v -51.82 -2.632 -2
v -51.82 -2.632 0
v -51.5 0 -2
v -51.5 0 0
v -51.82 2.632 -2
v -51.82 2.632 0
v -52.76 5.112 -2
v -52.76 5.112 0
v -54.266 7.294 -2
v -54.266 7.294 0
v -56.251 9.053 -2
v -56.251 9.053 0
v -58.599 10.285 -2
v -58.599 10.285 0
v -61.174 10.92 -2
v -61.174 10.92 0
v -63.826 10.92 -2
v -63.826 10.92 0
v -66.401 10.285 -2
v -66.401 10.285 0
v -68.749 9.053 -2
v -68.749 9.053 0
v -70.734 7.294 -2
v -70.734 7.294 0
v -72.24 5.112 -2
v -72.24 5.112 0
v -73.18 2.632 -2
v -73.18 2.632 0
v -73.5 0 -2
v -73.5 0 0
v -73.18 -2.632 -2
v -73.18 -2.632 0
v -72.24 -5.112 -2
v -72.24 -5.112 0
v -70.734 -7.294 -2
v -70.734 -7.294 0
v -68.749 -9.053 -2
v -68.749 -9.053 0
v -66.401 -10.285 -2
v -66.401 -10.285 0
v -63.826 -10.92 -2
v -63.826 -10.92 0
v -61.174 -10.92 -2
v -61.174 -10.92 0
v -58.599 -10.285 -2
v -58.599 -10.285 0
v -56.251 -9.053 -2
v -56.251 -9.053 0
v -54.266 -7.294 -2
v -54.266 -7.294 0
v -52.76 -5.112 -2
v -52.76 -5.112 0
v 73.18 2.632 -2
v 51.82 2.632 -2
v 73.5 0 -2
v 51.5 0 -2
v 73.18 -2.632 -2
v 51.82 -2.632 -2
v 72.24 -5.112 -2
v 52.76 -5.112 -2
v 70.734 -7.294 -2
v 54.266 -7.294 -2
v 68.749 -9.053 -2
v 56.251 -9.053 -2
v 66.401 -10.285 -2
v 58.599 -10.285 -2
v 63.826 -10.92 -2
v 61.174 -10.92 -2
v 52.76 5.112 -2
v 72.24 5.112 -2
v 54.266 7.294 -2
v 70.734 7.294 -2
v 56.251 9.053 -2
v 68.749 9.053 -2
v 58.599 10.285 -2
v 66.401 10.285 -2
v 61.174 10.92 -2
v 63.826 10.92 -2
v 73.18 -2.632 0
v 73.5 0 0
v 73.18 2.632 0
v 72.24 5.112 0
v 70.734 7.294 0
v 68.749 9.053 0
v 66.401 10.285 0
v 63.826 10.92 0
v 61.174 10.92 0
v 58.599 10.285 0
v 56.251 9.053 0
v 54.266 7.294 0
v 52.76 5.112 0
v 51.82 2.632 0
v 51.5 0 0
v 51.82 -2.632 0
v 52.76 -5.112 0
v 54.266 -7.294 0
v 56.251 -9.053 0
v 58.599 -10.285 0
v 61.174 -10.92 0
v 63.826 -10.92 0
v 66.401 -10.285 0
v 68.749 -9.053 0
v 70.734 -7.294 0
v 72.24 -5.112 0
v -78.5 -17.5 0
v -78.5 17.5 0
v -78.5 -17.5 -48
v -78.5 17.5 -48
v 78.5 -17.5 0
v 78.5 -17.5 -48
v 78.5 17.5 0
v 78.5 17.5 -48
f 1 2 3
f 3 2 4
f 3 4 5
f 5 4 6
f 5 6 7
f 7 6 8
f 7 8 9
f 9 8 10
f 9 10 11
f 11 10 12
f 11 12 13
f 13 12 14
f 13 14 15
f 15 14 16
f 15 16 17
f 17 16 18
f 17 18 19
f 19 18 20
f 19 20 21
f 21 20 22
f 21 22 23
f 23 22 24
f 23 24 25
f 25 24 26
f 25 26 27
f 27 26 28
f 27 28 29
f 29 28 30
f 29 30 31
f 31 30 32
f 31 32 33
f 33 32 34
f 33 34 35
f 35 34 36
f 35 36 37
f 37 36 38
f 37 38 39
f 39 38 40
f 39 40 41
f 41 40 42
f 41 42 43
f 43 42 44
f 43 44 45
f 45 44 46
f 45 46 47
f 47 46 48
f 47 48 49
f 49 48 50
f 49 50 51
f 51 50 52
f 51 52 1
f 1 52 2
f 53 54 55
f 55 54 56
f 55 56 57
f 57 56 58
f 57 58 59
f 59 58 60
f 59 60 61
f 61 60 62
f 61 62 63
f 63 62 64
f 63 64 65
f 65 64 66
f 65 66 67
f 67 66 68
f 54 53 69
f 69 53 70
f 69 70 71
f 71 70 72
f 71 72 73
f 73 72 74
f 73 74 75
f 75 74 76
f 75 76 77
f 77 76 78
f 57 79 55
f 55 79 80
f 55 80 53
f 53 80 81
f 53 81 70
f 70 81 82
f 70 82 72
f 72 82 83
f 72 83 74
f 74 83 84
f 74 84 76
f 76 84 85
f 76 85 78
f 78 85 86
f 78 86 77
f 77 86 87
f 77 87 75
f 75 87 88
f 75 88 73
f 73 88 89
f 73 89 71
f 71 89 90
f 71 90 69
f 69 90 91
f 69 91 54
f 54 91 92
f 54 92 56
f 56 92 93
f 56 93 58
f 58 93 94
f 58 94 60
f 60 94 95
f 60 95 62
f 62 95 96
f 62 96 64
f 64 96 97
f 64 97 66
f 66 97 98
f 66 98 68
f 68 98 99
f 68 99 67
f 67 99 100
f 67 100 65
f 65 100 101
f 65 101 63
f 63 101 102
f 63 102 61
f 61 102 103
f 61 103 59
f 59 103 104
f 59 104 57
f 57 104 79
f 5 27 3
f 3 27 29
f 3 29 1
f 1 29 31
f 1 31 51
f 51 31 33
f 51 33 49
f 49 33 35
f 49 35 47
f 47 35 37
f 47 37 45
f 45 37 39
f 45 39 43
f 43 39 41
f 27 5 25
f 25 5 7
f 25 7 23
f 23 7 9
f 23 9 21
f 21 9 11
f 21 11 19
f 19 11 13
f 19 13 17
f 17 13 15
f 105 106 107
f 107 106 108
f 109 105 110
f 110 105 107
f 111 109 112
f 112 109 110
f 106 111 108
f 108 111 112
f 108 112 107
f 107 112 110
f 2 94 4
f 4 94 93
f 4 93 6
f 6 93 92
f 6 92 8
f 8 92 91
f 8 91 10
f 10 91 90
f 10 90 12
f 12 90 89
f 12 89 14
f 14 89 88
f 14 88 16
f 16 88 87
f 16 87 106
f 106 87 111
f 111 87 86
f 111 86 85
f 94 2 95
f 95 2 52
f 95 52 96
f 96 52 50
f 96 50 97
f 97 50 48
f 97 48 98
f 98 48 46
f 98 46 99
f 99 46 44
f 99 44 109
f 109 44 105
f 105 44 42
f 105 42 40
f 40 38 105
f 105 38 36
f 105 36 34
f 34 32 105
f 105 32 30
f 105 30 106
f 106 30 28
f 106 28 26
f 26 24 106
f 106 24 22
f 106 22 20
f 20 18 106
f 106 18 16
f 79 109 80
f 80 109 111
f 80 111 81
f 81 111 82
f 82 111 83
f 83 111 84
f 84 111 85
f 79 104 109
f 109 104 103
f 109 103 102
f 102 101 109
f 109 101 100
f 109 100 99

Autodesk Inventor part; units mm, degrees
ref_plane "YZ Plane" through (0, 0, 0) normal (1, 0, 0) x (0, 1, 0)
ref_plane "XZ Plane" through (0, 0, 0) normal (0, 1, 0) x (-1, 0, 0)
ref_plane "XY Plane" through (0, 0, 0) normal (0, 0, 1) x (1, 0, 0)
sketch "Sketch1" plane through (0, 0, 0) normal (0, 0, 1) x (1, 0, 0)
  line L0 (-78.5, 17.5) -> (78.5, 17.5)
  line L1 (78.5, 17.5) -> (78.5, -17.5)
  line L2 (78.5, -17.5) -> (-78.5, -17.5)
  line L3 (-78.5, -17.5) -> (-78.5, 17.5)
  point P0 (0, 0)
  point P1 (0, 17.5)
  point P2 (78.5, 0)
  dimension "d0" = 157
  dimension "d1" = 35
extrude "Extrusion1" add sketch "Sketch1" against normal blind 48
sketch "Sketch2" plane through (0, 0, 0) normal (0, 0, 1) x (1, 0, 0)
  circle A0 centre (-62.5, 0) radius 11
  circle A1 centre (62.5, 0) radius 11
  line L0 (-78.5, -17.5) -> (-78.5, 17.5) projected
  point P0 (0, 0)
  dimension "d4" = 22
  dimension "d5" = 22
  dimension "d6" = 125
  dimension "d7" = 16
extrude "Extrusion2" cut sketch "Sketch2" against normal blind 2
equation "\"d5\" = d4"
properties part number "Camera" material "Brass, Soft Yellow"
